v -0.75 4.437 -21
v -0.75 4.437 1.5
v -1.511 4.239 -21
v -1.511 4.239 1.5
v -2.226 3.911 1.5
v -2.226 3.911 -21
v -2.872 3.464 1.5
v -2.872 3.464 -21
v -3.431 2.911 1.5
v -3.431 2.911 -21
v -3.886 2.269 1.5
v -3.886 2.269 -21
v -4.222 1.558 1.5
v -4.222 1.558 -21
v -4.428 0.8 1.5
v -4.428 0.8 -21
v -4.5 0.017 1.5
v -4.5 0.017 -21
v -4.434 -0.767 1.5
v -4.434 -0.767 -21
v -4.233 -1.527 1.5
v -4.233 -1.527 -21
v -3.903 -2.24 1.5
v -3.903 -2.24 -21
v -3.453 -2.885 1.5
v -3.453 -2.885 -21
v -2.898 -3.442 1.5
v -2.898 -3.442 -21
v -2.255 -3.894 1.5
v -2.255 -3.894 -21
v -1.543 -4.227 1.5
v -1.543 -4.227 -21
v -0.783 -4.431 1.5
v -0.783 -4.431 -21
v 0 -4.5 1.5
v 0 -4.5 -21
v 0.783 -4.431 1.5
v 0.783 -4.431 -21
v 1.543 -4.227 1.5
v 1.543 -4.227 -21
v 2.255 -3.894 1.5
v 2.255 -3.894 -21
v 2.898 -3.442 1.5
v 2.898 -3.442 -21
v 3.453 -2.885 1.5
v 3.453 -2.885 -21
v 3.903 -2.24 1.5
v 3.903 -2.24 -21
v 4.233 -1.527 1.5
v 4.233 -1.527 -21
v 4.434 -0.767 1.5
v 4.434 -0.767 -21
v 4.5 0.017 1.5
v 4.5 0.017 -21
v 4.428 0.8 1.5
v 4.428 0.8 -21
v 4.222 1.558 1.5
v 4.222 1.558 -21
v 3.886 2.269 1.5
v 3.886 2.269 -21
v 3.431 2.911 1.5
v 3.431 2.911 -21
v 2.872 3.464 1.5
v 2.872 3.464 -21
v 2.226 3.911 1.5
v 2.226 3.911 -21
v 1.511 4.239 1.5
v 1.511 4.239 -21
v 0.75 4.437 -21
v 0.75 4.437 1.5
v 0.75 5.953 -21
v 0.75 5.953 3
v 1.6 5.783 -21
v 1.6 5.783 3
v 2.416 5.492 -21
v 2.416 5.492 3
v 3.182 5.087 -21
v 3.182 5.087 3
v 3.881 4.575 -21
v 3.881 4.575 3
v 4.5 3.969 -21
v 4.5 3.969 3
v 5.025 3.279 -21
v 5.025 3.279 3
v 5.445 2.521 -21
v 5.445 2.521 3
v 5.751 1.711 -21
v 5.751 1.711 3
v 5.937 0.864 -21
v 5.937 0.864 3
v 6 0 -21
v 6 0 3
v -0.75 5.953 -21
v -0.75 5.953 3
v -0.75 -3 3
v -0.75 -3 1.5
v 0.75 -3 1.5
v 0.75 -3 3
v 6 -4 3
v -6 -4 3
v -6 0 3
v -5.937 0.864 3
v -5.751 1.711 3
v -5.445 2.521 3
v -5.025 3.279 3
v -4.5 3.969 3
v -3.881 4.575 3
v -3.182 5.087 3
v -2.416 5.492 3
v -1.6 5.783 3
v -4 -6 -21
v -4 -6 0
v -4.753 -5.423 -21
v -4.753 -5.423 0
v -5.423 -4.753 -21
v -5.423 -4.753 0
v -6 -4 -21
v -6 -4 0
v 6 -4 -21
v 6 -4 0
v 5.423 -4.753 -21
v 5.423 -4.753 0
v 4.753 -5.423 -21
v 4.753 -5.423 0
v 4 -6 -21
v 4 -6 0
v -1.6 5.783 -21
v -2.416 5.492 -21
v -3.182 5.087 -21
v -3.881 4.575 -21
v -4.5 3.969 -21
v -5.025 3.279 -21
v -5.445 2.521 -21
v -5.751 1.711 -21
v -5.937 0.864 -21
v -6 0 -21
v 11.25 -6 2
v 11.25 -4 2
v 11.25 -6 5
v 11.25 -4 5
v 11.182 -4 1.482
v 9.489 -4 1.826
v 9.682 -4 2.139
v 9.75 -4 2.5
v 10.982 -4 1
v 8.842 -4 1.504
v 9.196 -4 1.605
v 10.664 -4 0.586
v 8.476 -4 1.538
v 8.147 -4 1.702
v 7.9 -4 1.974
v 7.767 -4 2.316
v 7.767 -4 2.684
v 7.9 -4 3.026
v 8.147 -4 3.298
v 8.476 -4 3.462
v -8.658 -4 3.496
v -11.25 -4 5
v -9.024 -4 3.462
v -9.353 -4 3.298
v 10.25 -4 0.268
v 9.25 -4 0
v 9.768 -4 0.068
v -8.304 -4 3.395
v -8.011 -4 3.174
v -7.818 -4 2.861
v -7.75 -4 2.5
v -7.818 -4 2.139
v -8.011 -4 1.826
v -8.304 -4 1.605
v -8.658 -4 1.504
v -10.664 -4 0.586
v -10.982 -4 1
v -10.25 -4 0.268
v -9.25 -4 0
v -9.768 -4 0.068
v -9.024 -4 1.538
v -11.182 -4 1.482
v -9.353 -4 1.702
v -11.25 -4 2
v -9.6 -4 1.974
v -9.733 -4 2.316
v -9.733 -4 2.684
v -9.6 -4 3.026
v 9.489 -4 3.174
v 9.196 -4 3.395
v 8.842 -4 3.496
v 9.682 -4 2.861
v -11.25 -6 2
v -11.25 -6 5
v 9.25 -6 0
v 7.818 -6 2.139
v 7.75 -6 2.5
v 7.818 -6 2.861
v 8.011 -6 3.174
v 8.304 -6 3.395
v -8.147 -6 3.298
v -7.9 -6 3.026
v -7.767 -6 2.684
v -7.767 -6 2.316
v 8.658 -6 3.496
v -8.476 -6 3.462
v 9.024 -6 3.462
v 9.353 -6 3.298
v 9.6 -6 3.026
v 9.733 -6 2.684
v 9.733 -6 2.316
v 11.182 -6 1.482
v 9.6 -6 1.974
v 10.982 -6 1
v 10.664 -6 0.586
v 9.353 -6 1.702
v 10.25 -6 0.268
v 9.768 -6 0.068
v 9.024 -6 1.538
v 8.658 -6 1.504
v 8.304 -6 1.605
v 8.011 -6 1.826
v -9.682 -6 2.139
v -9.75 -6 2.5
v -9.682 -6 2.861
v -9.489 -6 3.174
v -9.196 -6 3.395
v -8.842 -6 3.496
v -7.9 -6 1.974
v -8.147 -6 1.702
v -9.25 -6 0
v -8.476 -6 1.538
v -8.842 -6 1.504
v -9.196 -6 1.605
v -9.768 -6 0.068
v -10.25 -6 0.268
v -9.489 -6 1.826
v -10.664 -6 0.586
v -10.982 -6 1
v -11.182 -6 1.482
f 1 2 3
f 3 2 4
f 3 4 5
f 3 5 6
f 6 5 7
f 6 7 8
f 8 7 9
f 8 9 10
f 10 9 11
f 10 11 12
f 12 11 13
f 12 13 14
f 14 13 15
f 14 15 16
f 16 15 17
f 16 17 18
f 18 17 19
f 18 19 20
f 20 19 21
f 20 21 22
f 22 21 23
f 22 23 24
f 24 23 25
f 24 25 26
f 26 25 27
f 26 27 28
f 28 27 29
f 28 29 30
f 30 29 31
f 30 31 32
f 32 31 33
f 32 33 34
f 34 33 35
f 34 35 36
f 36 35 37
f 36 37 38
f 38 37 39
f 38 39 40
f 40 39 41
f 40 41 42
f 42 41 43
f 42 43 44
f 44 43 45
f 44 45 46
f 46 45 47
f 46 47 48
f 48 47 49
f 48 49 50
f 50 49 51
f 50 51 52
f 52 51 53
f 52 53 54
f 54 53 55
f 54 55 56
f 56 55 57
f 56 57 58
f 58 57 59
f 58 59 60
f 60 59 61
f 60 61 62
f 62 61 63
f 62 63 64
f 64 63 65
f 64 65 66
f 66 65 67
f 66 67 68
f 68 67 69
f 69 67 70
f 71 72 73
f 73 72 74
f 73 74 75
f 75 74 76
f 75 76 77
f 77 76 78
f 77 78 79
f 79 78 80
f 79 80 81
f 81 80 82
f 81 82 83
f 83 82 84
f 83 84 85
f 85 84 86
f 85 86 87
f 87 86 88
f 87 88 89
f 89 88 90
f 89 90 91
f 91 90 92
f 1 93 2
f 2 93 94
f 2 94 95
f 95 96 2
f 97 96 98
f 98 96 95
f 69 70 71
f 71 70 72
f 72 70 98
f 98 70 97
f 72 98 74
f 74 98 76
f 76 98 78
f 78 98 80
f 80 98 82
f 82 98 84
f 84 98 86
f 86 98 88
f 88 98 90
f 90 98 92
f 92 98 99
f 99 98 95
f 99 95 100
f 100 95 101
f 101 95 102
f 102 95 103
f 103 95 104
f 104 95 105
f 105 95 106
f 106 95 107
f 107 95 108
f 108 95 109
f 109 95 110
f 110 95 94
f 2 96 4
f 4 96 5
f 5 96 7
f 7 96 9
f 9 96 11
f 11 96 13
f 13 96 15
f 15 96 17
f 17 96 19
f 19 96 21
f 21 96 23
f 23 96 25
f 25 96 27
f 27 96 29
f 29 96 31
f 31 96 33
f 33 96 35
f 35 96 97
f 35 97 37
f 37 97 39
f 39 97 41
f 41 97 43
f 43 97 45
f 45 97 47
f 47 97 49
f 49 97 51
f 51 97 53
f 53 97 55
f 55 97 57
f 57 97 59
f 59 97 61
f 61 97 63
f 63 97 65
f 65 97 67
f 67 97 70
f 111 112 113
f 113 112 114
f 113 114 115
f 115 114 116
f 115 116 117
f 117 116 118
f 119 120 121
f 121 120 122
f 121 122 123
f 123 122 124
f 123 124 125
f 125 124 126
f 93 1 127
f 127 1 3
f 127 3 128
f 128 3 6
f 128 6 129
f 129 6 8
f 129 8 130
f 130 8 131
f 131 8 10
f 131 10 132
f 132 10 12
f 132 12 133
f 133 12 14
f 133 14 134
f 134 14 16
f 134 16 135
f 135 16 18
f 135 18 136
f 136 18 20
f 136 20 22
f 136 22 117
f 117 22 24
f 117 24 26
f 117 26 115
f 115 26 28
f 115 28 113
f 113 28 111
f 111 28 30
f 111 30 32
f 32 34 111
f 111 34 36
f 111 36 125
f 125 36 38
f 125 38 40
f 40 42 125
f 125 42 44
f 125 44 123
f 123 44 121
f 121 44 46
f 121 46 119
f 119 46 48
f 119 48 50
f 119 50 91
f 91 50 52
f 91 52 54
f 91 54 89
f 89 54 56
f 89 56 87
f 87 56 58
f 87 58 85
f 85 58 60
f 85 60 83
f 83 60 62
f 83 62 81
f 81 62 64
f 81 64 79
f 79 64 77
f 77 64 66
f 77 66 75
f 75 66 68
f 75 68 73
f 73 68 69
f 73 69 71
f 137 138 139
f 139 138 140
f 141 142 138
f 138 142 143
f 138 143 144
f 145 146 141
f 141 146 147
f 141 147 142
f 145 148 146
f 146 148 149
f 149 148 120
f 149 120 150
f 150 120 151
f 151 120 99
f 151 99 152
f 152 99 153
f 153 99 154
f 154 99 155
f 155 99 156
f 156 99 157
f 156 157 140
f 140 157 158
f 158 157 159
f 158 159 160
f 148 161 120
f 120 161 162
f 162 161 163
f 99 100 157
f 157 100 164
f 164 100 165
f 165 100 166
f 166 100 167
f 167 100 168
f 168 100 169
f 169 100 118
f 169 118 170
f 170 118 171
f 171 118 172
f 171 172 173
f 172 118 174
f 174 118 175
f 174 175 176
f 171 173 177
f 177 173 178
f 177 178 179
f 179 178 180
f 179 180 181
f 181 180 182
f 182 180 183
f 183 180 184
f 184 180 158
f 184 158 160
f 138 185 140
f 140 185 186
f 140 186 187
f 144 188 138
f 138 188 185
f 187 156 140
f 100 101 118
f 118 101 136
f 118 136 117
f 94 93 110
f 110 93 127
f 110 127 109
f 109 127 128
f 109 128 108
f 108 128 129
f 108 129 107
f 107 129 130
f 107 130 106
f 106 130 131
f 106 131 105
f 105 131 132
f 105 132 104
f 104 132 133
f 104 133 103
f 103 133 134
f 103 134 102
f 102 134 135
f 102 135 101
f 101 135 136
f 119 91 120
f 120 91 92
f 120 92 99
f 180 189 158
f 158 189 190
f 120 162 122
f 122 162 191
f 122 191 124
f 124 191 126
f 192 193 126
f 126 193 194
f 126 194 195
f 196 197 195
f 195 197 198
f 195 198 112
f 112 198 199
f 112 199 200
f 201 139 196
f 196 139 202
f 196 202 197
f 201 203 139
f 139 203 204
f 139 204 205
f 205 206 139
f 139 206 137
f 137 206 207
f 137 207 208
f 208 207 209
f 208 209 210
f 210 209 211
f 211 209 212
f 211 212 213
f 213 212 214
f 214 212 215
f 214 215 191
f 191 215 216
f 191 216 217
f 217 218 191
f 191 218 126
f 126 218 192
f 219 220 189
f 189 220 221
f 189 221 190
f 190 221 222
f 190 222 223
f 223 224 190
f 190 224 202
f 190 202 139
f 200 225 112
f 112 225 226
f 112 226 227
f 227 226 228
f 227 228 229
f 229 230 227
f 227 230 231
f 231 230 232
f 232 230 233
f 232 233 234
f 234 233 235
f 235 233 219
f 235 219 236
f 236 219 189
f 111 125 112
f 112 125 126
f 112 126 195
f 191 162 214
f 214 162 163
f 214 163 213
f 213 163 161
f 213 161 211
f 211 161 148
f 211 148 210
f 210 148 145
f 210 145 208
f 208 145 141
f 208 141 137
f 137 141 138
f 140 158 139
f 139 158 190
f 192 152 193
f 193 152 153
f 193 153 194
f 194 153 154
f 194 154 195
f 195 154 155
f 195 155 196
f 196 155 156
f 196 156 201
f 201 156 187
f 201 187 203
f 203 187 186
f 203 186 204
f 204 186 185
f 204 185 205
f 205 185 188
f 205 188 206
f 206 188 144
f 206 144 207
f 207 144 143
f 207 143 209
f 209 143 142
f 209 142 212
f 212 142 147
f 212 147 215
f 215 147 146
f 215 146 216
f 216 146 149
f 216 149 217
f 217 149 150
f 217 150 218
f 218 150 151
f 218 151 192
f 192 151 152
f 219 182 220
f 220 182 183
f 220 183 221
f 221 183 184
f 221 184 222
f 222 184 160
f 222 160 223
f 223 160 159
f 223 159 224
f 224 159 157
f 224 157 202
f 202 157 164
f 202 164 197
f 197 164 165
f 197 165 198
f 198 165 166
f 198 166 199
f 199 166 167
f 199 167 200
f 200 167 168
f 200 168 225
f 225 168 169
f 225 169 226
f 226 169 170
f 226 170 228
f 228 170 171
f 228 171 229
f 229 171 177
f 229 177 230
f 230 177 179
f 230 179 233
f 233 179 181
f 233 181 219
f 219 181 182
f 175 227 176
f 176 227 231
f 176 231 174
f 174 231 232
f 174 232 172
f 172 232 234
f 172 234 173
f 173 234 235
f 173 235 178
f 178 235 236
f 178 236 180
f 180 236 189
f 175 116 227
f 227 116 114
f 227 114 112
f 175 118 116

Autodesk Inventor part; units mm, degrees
ref_plane "YZ Plane" through (0, 0, 0) normal (1, 0, 0) x (0, 1, 0)
ref_plane "XZ Plane" through (0, 0, 0) normal (0, 1, 0) x (-1, 0, 0)
ref_plane "XY Plane" through (0, 0, 0) normal (0, 0, 1) x (1, 0, 0)
sketch "スケッチ1" plane through (0, 0, 0) normal (0, 0, 1) x (1, 0, 0)
  circle A0 centre (0, 0) radius 4.25
  circle A1 centre (0, 0) radius 4.5
  circle A2 centre (0, 0) radius 5
  line L0 (0, -5) -> (0, -6)
  line L1 (0, -6) -> (8.75, -6)
  line L2 (8.75, -6) -> (-8.75, -6)
  line L3 (0, -6) -> (11.25, -6)
  line L4 (11.25, -6) -> (-11.25, -6)
  line L5 (-11.25, -6) -> (-11.25, -4)
  line L6 (-11.25, -4) -> (11.25, -4)
  line L7 (11.25, -4) -> (11.25, -6)
  circle A3 centre (0, 0) radius 6
  line L8 (-6, 0) -> (-6, -4)
  line L9 (6, 0) -> (6, -4)
  circle A4 centre (0, 0) radius 7.2111
  line L10 (0, 0) -> (0, -3)
  line L11 (0, -3) -> (0, 7.2111)
  line L12 (0, -3) -> (0.75, -3)
  line L13 (0.75, -3) -> (-0.75, -3)
  line L14 (-0.75, -3) -> (-0.75, 5.9529)
  line L15 (0.75, -3) -> (0.75, 5.9529)
  point P0 (4.4721, -4)
  point P1 (-4.4721, -4)
  point P2 (4, -6)
  point P3 (-4, -6)
  point P4 (-0.75, 4.4371)
  point P5 (0.75, 4.4371)
  dimension "d2" = 10
  dimension "d0" = 8.5
  dimension "d1" = 9
  dimension "d3" = 1
  dimension "d4" = 8.75
  dimension "d5" = 17.5
  dimension "d6" = 11.25
  dimension "d7" = 22.5
  dimension "d8" = 2
  dimension "d9" = 12
  dimension "d18" = 3
  dimension "d19" = 0.75
  dimension "d20" = 1.5
extrude "押し出し1" add sketch "スケッチ1" along normal blind 5 contours L6 A1 A0 | A0 L6 | L6 A2 A1 | L6 A3 L0 A2 | A2 L0 A3 L6 | L6 A4 L1 A3 | A3 L2 A4 L6 | L6 L7 L3 L1 A4 | A4 L2 L4 L5 L6
extrude "押し出し2" add sketch "スケッチ1" along normal blind 3 contours A0 L6 L14 L13 L12 L15 | A0 L15 A1 L6 | L15 L12 L10 L11 A0 | A0 L11 A1 L15 | L6 A1 A0 | A0 L6 | L11 L10 L13 L14 A0 | A0 L14 A1 L11 | L15 A2 L6 A1 | A1 L11 A2 L15 | L6 A1 L14 A0 | L6 A2 A1 | A1 L14 A2 L11 | L15 A3 L6 A2 | A2 L11 A3 L15 | L6 A2 L14 A1 | L6 A3 L0 A2 | A2 L14 A3 L11 | L6 A3 L14 A2 | A2 L0 A3 L6 | A3 L9 L6 | L6 L8 A3
extrude "押し出し3" add sketch "スケッチ1" against normal blind 21 contours L15 A2 L6 A1 | A1 L11 A2 L15 | L6 A2 A1 | A1 L14 A2 L11 | L15 A3 L6 A2 | A2 L11 A3 L15 | L6 A2 L14 A1 | L6 A3 L0 A2 | A2 L14 A3 L11 | L6 A3 L14 A2 | A2 L0 A3 L6 | A3 L9 L6 | L6 A4 L1 A3 | A3 L2 A4 L6 | L6 L8 A3
extrude "押し出し4" cut sketch "スケッチ1" along normal blind 1.5 contours A0 L6 L14 L13 L12 L15 | A0 L15 A1 L6 | L15 L12 L10 L11 A0 | A0 L11 A1 L15 | L6 A1 A0 | A0 L6 | L11 L10 L13 L14 A0 | A0 L14 A1 L11 | L6 A1 L14 A0
extrude "押し出し5" cut sketch "スケッチ1" along normal blind 3 contours L15 L12 L10 L11 A0 | A0 L11 A1 L15 | L11 L10 L13 L14 A0 | A0 L14 A1 L11 | A1 L11 A2 L15 | A1 L14 A2 L11 | A2 L11 A3 L15 | A2 L14 A3 L11
extrude "押し出し6" cut sketch "スケッチ1" against normal blind 21 contours A1 L11 A2 L15 | A1 L14 A2 L11 | A2 L11 A3 L15 | A2 L14 A3 L11
sketch "スケッチ2" plane through (-11.25, -4, 5) normal (0, 1, 0) x (1, 0, 0)
  line L0 (22.5, 0) -> (0, 0) projected
  line L1 (0, 0) -> (0, 2.5)
  line L2 (0, 5) -> (0, 0) projected
  line L3 (0, 2.5) -> (22.5, 2.5)
  line L4 (22.5, 5) -> (22.5, 0) projected
  line L5 (22.5, 2.5) -> (20, 2.5)
  line L6 (20, 2.5) -> (2.5, 2.5)
  point P0 (11.25, 5)
  dimension "d25" = 2.5
  dimension "d26" = 17.5
hole "穴1" at (-8.75, -4, 2.5) at (8.75, -4, 2.5) direction (0, -1, 0) diameter 2 end through all
fillet "フィレット1" radius 2 2 edges at (-11.25, -5, 0) (11.25, -5, 0)
properties part number "motor cover1"
